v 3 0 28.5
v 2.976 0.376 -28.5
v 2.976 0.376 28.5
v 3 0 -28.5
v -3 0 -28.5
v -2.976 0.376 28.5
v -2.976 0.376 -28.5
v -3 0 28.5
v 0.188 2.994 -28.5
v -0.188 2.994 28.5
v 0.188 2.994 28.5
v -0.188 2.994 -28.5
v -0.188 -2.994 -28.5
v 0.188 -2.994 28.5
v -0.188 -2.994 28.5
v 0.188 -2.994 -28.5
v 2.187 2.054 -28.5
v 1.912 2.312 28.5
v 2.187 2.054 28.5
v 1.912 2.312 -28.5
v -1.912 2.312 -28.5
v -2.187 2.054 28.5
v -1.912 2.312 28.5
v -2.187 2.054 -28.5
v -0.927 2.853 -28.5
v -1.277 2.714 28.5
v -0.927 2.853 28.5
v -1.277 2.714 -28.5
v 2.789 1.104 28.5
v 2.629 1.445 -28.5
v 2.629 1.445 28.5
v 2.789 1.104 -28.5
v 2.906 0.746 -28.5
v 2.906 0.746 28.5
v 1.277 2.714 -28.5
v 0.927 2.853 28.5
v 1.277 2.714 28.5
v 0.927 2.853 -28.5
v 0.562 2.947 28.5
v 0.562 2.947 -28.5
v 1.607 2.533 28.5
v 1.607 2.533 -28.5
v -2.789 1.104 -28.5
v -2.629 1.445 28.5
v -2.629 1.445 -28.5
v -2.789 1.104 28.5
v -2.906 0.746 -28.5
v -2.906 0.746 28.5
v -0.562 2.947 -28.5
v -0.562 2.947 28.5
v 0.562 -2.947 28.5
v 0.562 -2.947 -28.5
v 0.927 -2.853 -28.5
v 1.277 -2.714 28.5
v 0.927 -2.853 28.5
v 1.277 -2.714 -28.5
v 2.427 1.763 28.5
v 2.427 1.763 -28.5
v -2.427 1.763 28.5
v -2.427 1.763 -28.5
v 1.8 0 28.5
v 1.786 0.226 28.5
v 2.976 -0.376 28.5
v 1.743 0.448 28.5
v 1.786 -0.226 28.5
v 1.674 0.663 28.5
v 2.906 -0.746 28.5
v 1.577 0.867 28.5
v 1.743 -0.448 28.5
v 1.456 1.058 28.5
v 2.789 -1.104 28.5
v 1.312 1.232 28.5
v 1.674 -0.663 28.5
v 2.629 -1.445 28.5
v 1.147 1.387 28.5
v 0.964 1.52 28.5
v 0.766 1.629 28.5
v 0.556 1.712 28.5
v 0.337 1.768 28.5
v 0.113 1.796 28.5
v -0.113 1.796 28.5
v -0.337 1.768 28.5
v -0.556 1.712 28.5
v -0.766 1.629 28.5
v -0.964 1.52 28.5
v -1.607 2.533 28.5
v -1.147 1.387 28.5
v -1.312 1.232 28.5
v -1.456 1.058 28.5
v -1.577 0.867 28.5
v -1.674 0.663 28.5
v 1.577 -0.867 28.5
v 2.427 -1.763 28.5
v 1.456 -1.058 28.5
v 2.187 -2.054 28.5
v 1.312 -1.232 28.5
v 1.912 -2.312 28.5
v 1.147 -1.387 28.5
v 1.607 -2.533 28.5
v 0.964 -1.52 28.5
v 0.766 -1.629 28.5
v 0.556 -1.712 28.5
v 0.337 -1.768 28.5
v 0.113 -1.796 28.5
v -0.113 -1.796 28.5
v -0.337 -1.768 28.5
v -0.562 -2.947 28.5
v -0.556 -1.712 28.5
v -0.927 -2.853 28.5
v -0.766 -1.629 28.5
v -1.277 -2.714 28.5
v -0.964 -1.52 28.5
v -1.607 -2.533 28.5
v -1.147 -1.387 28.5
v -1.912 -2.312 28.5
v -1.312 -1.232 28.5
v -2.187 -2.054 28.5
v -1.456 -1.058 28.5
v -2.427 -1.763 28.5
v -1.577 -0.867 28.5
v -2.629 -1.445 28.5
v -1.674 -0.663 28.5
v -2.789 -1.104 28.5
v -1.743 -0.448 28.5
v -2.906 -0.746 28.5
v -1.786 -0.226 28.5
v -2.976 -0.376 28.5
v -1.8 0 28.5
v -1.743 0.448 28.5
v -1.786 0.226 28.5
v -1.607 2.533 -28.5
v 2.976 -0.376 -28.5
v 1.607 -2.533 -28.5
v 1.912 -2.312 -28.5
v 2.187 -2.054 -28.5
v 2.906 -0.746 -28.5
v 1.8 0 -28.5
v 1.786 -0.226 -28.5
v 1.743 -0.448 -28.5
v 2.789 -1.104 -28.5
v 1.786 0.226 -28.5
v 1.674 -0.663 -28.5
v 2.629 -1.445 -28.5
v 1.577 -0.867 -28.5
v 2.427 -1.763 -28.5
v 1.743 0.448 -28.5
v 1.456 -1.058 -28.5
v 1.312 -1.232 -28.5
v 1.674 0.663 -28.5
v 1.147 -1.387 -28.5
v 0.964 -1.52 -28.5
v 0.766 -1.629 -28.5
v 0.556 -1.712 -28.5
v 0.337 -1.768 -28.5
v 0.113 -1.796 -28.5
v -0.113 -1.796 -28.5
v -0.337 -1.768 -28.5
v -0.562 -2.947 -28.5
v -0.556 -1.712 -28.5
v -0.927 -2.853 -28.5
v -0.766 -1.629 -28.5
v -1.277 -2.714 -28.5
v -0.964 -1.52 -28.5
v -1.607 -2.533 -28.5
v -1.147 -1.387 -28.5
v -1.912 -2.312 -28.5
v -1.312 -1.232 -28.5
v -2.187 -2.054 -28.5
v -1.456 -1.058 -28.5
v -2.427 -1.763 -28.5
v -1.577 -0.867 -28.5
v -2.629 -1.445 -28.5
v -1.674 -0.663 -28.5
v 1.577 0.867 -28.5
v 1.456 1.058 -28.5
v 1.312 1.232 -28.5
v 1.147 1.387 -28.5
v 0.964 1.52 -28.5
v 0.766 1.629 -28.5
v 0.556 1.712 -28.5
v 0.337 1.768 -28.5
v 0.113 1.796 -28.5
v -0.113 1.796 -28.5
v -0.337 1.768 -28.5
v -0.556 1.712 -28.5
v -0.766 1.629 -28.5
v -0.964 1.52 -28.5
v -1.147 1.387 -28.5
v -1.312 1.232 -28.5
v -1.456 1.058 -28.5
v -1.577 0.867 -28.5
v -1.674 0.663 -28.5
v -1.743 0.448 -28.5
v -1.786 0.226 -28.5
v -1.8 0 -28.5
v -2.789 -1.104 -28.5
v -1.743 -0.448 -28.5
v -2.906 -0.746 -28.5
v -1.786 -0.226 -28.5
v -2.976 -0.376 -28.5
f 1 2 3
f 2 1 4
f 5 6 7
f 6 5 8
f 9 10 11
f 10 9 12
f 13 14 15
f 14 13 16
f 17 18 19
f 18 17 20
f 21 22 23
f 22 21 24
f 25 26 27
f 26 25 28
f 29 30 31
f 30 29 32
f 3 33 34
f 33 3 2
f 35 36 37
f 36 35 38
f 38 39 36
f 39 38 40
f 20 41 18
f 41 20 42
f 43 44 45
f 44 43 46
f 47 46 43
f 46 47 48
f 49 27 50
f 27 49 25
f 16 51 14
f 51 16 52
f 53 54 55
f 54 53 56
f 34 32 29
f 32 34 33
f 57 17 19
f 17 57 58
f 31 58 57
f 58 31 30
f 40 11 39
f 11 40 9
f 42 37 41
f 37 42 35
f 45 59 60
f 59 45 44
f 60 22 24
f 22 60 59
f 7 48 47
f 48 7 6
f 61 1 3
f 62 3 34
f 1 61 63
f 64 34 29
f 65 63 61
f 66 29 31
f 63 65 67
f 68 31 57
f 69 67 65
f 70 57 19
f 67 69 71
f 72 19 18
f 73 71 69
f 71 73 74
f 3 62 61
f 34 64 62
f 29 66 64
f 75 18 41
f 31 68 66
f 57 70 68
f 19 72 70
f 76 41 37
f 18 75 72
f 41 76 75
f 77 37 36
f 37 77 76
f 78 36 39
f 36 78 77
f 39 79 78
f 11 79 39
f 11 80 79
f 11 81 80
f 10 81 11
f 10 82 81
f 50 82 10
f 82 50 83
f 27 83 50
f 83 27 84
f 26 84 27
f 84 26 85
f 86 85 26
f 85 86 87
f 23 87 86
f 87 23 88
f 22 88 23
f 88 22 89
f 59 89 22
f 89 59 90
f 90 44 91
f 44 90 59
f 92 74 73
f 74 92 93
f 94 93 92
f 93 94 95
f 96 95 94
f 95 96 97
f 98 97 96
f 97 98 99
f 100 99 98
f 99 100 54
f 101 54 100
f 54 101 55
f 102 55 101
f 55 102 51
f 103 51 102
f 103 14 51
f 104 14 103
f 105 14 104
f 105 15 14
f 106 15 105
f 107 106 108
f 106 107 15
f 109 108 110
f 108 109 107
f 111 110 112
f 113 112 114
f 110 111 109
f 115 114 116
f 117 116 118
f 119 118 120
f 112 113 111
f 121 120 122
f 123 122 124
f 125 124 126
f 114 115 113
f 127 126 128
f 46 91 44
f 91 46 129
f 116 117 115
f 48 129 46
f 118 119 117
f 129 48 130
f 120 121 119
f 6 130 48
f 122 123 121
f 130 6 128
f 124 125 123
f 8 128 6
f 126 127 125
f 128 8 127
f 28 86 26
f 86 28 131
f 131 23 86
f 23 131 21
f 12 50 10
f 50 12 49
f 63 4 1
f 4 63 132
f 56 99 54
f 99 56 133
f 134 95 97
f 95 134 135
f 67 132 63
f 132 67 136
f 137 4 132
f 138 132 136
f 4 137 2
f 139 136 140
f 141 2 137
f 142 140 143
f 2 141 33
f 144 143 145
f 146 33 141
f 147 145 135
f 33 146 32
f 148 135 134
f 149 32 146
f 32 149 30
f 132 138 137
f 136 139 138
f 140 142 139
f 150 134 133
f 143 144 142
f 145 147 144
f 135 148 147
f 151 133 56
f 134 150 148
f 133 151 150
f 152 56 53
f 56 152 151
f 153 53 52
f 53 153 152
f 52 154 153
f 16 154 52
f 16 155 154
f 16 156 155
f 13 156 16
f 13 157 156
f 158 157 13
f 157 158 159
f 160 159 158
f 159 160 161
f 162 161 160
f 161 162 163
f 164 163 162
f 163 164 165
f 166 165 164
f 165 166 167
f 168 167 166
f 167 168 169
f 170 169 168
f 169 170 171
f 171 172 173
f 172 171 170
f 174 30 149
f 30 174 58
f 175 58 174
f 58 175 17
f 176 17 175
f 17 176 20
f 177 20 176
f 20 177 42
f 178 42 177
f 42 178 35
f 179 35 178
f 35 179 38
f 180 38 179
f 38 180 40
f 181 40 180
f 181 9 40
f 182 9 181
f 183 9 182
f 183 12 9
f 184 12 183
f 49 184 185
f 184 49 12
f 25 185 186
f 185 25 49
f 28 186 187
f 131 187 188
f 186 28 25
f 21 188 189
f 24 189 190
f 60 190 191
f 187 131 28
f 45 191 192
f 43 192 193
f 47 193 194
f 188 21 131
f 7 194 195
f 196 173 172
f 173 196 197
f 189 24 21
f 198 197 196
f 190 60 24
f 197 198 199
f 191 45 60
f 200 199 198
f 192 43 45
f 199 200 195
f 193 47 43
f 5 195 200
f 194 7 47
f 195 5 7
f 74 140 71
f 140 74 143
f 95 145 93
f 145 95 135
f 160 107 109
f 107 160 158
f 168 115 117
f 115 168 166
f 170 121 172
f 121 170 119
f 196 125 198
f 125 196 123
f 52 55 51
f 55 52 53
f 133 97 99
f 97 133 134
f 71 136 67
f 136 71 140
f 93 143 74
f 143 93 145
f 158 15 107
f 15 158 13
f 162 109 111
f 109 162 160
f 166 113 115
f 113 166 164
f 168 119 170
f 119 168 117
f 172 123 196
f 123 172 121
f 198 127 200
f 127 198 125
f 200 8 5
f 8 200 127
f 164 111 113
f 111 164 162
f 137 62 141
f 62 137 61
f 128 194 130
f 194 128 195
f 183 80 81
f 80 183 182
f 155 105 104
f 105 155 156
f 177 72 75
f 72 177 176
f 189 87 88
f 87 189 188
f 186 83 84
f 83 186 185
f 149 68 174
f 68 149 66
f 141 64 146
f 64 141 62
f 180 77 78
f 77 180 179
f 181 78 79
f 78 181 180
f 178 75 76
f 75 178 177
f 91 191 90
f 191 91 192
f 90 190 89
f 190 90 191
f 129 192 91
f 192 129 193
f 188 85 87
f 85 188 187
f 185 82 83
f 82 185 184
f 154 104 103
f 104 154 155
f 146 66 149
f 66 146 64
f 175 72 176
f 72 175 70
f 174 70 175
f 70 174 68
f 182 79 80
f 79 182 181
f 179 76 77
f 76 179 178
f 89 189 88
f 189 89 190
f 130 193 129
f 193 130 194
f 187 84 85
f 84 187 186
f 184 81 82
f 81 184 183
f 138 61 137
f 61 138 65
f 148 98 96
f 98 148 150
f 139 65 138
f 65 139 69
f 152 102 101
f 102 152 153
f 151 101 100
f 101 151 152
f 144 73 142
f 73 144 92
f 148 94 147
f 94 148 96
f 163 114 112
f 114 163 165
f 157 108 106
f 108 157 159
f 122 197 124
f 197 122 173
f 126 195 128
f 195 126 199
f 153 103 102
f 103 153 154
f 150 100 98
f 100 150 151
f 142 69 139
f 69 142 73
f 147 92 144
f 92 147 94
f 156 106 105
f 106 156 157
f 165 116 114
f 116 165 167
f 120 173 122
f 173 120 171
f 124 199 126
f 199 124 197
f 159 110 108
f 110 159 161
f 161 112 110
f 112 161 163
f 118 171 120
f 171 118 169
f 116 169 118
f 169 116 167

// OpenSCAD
$fn = 50;


difference() {
	union() {
		translate(v = [0, 0, -28.5000000000]) {
			cylinder(h = 57, r = 3.0000000000);
		}
	}
	union() {
		translate(v = [0, 0, -100.0000000000]) {
			cylinder(h = 200, r = 1.8000000000);
		}
	}
}
